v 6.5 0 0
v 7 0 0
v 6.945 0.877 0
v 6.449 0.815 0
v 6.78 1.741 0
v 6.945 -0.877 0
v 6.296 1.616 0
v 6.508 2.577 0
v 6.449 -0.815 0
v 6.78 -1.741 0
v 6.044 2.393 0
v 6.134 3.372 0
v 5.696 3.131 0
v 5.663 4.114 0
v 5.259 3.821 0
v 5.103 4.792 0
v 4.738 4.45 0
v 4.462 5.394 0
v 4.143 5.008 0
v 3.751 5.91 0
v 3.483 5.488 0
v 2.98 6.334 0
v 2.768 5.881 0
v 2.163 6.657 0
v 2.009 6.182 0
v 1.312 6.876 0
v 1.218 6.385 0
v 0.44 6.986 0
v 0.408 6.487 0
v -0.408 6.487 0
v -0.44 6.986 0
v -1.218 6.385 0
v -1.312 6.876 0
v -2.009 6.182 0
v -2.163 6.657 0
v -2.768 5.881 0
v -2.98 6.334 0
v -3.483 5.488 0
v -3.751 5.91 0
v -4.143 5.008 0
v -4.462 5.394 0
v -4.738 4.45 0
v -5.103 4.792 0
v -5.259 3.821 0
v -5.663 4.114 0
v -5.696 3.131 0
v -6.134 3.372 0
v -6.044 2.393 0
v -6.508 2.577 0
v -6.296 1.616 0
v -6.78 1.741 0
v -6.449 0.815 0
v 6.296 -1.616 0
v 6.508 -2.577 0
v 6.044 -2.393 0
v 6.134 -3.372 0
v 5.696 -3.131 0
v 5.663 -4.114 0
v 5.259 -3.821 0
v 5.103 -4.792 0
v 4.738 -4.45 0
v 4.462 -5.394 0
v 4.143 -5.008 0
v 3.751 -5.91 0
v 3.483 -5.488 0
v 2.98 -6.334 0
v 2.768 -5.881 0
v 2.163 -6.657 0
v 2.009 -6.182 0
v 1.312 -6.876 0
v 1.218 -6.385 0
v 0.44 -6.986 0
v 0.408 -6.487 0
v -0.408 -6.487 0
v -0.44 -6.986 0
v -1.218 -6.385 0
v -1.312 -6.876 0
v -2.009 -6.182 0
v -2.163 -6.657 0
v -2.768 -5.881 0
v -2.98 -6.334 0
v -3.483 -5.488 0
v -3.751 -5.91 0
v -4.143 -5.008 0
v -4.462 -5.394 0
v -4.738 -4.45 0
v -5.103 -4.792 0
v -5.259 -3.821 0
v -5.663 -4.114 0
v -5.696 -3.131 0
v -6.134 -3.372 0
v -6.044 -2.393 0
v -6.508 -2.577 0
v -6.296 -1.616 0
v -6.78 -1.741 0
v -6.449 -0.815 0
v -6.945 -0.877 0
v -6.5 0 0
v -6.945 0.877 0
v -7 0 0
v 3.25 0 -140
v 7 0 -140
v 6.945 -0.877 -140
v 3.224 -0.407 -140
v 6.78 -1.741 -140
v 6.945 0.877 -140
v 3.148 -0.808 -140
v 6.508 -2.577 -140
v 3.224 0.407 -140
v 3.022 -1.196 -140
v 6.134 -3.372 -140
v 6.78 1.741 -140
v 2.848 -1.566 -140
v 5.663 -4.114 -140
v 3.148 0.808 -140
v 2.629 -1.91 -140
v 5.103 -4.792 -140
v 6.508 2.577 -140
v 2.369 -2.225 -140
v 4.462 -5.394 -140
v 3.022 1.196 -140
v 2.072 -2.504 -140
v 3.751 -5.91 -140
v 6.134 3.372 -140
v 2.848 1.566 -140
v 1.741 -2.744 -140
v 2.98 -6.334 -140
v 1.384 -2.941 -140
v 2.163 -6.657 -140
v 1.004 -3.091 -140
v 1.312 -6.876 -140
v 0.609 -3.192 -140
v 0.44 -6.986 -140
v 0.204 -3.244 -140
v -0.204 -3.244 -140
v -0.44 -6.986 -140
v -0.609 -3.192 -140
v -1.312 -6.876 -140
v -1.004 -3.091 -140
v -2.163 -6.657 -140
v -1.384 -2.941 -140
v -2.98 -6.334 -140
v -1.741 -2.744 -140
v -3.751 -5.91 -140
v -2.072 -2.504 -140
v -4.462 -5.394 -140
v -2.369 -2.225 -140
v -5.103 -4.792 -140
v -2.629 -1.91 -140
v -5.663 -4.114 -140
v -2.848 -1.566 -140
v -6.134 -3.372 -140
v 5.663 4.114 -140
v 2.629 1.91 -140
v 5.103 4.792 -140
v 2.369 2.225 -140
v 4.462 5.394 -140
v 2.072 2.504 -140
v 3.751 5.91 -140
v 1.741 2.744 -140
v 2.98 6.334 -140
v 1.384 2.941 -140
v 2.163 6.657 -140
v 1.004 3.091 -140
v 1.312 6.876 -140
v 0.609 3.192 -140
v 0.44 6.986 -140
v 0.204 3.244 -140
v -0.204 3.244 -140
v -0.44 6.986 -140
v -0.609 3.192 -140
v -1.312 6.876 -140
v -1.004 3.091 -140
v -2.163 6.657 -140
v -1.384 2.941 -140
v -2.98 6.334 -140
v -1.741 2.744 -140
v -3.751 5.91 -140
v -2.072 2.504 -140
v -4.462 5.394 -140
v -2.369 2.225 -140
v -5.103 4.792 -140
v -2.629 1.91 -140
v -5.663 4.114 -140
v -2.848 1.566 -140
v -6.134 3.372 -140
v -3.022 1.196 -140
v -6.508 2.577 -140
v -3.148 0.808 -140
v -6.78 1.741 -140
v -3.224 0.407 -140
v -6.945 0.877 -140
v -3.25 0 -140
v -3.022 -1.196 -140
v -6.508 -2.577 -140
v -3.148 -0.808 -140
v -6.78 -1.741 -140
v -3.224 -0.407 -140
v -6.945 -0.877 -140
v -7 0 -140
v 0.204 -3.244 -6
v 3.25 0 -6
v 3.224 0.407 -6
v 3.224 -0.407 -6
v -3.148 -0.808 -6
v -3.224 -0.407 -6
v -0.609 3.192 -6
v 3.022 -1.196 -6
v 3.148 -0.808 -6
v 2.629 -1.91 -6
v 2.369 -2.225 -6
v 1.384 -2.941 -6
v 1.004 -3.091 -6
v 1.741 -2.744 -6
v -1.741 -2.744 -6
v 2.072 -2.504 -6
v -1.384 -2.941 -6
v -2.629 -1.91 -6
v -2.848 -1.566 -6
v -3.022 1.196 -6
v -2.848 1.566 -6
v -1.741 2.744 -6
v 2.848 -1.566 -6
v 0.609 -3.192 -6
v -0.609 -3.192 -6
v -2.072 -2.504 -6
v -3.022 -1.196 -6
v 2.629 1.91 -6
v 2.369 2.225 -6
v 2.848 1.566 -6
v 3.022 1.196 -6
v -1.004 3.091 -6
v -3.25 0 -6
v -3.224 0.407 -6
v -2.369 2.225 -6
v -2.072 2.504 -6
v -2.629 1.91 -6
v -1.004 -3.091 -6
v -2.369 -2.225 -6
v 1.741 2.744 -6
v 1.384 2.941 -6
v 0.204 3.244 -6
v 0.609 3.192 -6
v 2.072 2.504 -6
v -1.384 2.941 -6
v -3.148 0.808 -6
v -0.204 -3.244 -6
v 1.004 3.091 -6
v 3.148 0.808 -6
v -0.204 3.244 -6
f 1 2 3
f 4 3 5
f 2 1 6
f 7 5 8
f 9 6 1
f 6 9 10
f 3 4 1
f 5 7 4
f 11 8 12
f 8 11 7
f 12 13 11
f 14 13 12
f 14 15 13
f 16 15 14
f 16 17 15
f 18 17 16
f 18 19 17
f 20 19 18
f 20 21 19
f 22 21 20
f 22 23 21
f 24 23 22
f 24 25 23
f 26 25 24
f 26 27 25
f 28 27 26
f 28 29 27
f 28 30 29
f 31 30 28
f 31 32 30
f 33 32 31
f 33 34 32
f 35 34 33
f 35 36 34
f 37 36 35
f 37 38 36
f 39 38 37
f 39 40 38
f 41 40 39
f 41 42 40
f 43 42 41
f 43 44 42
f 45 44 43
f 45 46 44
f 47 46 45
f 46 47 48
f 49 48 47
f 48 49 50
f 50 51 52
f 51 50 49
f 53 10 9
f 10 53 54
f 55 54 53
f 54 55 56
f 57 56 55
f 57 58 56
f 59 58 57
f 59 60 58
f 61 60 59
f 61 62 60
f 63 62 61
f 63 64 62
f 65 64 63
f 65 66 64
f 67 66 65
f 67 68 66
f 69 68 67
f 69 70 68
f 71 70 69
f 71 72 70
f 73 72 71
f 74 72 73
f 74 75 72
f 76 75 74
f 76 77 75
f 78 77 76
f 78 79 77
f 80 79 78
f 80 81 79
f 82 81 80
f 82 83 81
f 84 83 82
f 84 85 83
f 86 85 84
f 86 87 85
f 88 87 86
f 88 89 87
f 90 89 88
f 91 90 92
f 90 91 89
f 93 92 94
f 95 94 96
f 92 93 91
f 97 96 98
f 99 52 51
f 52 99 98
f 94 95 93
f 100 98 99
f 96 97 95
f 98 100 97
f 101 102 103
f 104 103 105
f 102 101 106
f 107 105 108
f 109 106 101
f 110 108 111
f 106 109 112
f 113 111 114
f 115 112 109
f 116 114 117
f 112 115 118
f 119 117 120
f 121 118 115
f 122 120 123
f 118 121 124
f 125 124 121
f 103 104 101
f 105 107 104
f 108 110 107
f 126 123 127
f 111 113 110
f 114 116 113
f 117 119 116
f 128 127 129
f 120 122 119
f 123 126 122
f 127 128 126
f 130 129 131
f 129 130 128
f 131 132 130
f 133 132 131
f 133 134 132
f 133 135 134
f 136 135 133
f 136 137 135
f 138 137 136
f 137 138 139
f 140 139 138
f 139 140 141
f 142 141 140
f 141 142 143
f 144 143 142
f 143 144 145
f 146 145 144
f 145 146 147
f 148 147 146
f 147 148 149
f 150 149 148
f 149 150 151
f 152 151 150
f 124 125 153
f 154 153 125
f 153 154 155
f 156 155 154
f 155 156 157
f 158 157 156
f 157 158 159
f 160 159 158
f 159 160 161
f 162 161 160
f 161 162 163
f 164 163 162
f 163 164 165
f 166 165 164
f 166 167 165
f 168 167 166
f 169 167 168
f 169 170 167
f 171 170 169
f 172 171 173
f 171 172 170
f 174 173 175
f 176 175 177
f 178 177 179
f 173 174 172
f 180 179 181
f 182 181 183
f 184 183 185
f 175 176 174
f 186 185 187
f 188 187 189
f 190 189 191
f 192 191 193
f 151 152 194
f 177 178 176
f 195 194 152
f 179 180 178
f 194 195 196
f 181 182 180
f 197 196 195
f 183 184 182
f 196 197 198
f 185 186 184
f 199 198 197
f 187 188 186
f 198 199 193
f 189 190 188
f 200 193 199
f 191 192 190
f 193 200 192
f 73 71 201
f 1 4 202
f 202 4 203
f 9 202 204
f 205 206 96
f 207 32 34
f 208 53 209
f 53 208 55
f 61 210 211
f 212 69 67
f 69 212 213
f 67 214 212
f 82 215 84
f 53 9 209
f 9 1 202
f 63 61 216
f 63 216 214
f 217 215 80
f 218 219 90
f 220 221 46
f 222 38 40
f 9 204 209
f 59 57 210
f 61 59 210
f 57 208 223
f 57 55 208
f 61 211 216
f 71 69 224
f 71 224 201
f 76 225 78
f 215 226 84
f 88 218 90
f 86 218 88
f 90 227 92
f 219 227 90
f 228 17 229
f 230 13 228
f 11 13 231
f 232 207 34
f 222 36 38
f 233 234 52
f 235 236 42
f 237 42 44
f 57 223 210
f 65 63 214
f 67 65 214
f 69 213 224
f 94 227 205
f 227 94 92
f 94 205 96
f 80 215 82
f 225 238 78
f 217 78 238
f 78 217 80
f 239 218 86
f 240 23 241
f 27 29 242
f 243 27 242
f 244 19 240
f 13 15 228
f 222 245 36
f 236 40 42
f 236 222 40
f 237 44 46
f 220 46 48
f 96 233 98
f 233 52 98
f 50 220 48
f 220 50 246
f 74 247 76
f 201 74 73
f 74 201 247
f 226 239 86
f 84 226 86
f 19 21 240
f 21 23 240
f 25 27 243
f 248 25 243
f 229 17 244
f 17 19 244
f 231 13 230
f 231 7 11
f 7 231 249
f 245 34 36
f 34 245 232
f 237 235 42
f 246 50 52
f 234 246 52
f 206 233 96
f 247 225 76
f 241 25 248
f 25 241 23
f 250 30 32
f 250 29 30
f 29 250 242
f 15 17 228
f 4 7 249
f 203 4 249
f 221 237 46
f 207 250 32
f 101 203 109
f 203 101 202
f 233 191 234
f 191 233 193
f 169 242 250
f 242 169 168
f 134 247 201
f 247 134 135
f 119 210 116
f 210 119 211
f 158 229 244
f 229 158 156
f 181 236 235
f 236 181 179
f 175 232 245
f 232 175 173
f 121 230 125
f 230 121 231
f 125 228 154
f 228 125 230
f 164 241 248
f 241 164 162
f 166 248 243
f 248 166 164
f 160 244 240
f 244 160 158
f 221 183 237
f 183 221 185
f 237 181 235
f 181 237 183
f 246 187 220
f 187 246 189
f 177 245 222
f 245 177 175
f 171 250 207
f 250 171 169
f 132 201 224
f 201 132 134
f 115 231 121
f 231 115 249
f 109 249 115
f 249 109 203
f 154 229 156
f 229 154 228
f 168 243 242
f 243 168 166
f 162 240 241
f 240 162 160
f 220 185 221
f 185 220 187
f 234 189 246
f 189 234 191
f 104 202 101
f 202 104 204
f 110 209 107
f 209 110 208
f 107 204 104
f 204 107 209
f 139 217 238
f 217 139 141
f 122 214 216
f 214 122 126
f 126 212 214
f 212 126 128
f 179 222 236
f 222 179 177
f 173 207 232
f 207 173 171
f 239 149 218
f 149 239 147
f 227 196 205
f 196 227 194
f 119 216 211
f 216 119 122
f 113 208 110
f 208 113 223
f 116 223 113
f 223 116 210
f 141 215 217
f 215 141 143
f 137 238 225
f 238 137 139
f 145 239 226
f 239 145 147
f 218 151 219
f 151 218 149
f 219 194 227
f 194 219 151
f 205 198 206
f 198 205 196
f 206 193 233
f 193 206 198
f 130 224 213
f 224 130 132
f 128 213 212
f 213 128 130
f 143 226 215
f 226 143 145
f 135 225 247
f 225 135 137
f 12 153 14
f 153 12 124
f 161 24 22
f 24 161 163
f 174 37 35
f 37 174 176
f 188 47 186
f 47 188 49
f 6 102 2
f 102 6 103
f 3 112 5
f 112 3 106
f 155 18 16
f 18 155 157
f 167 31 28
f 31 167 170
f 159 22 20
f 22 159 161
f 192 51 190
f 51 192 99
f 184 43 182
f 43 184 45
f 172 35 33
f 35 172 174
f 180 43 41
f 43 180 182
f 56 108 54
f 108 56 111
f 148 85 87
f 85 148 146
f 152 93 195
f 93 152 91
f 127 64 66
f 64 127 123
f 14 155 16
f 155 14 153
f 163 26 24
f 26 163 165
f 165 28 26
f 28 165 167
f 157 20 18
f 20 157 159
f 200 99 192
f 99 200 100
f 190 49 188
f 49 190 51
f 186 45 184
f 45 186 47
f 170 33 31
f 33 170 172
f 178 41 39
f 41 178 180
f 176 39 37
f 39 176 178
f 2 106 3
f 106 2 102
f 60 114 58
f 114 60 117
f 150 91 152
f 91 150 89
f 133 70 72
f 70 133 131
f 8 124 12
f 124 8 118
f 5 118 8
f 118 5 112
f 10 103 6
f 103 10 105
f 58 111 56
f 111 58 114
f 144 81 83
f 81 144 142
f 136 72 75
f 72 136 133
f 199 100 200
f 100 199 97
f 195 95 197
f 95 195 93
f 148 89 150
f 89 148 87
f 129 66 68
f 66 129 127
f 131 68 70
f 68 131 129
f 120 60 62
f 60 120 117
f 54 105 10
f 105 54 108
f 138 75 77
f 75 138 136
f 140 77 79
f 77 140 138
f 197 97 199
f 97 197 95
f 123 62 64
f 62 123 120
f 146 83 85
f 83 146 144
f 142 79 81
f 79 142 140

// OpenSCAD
$fn = 50;


difference() {
	union() {
		translate(v = [0, 0, -140.0000000000]) {
			cylinder(h = 140, r = 7.0000000000);
		}
		cylinder(h = 0, r = 10.0000000000);
	}
	union() {
		translate(v = [0, 0, 0]) {
			rotate(a = [0, 0, 0]) {
				difference() {
					union() {
						#translate(v = [0, 0, -140.0000000000]) {
							cylinder(h = 140, r = 2.2500000000);
						}
						#translate(v = [0, 0, -6]) {
							cylinder(h = 6, r1 = 3.2500000000, r2 = 6.5000000000);
						}
						#translate(v = [0, 0, -140.0000000000]) {
							cylinder(h = 140, r = 3.2500000000);
						}
						#translate(v = [0, 0, -140.0000000000]) {
							cylinder(h = 140, r = 2.2500000000);
						}
					}
					union();
				}
			}
		}
	}
}
